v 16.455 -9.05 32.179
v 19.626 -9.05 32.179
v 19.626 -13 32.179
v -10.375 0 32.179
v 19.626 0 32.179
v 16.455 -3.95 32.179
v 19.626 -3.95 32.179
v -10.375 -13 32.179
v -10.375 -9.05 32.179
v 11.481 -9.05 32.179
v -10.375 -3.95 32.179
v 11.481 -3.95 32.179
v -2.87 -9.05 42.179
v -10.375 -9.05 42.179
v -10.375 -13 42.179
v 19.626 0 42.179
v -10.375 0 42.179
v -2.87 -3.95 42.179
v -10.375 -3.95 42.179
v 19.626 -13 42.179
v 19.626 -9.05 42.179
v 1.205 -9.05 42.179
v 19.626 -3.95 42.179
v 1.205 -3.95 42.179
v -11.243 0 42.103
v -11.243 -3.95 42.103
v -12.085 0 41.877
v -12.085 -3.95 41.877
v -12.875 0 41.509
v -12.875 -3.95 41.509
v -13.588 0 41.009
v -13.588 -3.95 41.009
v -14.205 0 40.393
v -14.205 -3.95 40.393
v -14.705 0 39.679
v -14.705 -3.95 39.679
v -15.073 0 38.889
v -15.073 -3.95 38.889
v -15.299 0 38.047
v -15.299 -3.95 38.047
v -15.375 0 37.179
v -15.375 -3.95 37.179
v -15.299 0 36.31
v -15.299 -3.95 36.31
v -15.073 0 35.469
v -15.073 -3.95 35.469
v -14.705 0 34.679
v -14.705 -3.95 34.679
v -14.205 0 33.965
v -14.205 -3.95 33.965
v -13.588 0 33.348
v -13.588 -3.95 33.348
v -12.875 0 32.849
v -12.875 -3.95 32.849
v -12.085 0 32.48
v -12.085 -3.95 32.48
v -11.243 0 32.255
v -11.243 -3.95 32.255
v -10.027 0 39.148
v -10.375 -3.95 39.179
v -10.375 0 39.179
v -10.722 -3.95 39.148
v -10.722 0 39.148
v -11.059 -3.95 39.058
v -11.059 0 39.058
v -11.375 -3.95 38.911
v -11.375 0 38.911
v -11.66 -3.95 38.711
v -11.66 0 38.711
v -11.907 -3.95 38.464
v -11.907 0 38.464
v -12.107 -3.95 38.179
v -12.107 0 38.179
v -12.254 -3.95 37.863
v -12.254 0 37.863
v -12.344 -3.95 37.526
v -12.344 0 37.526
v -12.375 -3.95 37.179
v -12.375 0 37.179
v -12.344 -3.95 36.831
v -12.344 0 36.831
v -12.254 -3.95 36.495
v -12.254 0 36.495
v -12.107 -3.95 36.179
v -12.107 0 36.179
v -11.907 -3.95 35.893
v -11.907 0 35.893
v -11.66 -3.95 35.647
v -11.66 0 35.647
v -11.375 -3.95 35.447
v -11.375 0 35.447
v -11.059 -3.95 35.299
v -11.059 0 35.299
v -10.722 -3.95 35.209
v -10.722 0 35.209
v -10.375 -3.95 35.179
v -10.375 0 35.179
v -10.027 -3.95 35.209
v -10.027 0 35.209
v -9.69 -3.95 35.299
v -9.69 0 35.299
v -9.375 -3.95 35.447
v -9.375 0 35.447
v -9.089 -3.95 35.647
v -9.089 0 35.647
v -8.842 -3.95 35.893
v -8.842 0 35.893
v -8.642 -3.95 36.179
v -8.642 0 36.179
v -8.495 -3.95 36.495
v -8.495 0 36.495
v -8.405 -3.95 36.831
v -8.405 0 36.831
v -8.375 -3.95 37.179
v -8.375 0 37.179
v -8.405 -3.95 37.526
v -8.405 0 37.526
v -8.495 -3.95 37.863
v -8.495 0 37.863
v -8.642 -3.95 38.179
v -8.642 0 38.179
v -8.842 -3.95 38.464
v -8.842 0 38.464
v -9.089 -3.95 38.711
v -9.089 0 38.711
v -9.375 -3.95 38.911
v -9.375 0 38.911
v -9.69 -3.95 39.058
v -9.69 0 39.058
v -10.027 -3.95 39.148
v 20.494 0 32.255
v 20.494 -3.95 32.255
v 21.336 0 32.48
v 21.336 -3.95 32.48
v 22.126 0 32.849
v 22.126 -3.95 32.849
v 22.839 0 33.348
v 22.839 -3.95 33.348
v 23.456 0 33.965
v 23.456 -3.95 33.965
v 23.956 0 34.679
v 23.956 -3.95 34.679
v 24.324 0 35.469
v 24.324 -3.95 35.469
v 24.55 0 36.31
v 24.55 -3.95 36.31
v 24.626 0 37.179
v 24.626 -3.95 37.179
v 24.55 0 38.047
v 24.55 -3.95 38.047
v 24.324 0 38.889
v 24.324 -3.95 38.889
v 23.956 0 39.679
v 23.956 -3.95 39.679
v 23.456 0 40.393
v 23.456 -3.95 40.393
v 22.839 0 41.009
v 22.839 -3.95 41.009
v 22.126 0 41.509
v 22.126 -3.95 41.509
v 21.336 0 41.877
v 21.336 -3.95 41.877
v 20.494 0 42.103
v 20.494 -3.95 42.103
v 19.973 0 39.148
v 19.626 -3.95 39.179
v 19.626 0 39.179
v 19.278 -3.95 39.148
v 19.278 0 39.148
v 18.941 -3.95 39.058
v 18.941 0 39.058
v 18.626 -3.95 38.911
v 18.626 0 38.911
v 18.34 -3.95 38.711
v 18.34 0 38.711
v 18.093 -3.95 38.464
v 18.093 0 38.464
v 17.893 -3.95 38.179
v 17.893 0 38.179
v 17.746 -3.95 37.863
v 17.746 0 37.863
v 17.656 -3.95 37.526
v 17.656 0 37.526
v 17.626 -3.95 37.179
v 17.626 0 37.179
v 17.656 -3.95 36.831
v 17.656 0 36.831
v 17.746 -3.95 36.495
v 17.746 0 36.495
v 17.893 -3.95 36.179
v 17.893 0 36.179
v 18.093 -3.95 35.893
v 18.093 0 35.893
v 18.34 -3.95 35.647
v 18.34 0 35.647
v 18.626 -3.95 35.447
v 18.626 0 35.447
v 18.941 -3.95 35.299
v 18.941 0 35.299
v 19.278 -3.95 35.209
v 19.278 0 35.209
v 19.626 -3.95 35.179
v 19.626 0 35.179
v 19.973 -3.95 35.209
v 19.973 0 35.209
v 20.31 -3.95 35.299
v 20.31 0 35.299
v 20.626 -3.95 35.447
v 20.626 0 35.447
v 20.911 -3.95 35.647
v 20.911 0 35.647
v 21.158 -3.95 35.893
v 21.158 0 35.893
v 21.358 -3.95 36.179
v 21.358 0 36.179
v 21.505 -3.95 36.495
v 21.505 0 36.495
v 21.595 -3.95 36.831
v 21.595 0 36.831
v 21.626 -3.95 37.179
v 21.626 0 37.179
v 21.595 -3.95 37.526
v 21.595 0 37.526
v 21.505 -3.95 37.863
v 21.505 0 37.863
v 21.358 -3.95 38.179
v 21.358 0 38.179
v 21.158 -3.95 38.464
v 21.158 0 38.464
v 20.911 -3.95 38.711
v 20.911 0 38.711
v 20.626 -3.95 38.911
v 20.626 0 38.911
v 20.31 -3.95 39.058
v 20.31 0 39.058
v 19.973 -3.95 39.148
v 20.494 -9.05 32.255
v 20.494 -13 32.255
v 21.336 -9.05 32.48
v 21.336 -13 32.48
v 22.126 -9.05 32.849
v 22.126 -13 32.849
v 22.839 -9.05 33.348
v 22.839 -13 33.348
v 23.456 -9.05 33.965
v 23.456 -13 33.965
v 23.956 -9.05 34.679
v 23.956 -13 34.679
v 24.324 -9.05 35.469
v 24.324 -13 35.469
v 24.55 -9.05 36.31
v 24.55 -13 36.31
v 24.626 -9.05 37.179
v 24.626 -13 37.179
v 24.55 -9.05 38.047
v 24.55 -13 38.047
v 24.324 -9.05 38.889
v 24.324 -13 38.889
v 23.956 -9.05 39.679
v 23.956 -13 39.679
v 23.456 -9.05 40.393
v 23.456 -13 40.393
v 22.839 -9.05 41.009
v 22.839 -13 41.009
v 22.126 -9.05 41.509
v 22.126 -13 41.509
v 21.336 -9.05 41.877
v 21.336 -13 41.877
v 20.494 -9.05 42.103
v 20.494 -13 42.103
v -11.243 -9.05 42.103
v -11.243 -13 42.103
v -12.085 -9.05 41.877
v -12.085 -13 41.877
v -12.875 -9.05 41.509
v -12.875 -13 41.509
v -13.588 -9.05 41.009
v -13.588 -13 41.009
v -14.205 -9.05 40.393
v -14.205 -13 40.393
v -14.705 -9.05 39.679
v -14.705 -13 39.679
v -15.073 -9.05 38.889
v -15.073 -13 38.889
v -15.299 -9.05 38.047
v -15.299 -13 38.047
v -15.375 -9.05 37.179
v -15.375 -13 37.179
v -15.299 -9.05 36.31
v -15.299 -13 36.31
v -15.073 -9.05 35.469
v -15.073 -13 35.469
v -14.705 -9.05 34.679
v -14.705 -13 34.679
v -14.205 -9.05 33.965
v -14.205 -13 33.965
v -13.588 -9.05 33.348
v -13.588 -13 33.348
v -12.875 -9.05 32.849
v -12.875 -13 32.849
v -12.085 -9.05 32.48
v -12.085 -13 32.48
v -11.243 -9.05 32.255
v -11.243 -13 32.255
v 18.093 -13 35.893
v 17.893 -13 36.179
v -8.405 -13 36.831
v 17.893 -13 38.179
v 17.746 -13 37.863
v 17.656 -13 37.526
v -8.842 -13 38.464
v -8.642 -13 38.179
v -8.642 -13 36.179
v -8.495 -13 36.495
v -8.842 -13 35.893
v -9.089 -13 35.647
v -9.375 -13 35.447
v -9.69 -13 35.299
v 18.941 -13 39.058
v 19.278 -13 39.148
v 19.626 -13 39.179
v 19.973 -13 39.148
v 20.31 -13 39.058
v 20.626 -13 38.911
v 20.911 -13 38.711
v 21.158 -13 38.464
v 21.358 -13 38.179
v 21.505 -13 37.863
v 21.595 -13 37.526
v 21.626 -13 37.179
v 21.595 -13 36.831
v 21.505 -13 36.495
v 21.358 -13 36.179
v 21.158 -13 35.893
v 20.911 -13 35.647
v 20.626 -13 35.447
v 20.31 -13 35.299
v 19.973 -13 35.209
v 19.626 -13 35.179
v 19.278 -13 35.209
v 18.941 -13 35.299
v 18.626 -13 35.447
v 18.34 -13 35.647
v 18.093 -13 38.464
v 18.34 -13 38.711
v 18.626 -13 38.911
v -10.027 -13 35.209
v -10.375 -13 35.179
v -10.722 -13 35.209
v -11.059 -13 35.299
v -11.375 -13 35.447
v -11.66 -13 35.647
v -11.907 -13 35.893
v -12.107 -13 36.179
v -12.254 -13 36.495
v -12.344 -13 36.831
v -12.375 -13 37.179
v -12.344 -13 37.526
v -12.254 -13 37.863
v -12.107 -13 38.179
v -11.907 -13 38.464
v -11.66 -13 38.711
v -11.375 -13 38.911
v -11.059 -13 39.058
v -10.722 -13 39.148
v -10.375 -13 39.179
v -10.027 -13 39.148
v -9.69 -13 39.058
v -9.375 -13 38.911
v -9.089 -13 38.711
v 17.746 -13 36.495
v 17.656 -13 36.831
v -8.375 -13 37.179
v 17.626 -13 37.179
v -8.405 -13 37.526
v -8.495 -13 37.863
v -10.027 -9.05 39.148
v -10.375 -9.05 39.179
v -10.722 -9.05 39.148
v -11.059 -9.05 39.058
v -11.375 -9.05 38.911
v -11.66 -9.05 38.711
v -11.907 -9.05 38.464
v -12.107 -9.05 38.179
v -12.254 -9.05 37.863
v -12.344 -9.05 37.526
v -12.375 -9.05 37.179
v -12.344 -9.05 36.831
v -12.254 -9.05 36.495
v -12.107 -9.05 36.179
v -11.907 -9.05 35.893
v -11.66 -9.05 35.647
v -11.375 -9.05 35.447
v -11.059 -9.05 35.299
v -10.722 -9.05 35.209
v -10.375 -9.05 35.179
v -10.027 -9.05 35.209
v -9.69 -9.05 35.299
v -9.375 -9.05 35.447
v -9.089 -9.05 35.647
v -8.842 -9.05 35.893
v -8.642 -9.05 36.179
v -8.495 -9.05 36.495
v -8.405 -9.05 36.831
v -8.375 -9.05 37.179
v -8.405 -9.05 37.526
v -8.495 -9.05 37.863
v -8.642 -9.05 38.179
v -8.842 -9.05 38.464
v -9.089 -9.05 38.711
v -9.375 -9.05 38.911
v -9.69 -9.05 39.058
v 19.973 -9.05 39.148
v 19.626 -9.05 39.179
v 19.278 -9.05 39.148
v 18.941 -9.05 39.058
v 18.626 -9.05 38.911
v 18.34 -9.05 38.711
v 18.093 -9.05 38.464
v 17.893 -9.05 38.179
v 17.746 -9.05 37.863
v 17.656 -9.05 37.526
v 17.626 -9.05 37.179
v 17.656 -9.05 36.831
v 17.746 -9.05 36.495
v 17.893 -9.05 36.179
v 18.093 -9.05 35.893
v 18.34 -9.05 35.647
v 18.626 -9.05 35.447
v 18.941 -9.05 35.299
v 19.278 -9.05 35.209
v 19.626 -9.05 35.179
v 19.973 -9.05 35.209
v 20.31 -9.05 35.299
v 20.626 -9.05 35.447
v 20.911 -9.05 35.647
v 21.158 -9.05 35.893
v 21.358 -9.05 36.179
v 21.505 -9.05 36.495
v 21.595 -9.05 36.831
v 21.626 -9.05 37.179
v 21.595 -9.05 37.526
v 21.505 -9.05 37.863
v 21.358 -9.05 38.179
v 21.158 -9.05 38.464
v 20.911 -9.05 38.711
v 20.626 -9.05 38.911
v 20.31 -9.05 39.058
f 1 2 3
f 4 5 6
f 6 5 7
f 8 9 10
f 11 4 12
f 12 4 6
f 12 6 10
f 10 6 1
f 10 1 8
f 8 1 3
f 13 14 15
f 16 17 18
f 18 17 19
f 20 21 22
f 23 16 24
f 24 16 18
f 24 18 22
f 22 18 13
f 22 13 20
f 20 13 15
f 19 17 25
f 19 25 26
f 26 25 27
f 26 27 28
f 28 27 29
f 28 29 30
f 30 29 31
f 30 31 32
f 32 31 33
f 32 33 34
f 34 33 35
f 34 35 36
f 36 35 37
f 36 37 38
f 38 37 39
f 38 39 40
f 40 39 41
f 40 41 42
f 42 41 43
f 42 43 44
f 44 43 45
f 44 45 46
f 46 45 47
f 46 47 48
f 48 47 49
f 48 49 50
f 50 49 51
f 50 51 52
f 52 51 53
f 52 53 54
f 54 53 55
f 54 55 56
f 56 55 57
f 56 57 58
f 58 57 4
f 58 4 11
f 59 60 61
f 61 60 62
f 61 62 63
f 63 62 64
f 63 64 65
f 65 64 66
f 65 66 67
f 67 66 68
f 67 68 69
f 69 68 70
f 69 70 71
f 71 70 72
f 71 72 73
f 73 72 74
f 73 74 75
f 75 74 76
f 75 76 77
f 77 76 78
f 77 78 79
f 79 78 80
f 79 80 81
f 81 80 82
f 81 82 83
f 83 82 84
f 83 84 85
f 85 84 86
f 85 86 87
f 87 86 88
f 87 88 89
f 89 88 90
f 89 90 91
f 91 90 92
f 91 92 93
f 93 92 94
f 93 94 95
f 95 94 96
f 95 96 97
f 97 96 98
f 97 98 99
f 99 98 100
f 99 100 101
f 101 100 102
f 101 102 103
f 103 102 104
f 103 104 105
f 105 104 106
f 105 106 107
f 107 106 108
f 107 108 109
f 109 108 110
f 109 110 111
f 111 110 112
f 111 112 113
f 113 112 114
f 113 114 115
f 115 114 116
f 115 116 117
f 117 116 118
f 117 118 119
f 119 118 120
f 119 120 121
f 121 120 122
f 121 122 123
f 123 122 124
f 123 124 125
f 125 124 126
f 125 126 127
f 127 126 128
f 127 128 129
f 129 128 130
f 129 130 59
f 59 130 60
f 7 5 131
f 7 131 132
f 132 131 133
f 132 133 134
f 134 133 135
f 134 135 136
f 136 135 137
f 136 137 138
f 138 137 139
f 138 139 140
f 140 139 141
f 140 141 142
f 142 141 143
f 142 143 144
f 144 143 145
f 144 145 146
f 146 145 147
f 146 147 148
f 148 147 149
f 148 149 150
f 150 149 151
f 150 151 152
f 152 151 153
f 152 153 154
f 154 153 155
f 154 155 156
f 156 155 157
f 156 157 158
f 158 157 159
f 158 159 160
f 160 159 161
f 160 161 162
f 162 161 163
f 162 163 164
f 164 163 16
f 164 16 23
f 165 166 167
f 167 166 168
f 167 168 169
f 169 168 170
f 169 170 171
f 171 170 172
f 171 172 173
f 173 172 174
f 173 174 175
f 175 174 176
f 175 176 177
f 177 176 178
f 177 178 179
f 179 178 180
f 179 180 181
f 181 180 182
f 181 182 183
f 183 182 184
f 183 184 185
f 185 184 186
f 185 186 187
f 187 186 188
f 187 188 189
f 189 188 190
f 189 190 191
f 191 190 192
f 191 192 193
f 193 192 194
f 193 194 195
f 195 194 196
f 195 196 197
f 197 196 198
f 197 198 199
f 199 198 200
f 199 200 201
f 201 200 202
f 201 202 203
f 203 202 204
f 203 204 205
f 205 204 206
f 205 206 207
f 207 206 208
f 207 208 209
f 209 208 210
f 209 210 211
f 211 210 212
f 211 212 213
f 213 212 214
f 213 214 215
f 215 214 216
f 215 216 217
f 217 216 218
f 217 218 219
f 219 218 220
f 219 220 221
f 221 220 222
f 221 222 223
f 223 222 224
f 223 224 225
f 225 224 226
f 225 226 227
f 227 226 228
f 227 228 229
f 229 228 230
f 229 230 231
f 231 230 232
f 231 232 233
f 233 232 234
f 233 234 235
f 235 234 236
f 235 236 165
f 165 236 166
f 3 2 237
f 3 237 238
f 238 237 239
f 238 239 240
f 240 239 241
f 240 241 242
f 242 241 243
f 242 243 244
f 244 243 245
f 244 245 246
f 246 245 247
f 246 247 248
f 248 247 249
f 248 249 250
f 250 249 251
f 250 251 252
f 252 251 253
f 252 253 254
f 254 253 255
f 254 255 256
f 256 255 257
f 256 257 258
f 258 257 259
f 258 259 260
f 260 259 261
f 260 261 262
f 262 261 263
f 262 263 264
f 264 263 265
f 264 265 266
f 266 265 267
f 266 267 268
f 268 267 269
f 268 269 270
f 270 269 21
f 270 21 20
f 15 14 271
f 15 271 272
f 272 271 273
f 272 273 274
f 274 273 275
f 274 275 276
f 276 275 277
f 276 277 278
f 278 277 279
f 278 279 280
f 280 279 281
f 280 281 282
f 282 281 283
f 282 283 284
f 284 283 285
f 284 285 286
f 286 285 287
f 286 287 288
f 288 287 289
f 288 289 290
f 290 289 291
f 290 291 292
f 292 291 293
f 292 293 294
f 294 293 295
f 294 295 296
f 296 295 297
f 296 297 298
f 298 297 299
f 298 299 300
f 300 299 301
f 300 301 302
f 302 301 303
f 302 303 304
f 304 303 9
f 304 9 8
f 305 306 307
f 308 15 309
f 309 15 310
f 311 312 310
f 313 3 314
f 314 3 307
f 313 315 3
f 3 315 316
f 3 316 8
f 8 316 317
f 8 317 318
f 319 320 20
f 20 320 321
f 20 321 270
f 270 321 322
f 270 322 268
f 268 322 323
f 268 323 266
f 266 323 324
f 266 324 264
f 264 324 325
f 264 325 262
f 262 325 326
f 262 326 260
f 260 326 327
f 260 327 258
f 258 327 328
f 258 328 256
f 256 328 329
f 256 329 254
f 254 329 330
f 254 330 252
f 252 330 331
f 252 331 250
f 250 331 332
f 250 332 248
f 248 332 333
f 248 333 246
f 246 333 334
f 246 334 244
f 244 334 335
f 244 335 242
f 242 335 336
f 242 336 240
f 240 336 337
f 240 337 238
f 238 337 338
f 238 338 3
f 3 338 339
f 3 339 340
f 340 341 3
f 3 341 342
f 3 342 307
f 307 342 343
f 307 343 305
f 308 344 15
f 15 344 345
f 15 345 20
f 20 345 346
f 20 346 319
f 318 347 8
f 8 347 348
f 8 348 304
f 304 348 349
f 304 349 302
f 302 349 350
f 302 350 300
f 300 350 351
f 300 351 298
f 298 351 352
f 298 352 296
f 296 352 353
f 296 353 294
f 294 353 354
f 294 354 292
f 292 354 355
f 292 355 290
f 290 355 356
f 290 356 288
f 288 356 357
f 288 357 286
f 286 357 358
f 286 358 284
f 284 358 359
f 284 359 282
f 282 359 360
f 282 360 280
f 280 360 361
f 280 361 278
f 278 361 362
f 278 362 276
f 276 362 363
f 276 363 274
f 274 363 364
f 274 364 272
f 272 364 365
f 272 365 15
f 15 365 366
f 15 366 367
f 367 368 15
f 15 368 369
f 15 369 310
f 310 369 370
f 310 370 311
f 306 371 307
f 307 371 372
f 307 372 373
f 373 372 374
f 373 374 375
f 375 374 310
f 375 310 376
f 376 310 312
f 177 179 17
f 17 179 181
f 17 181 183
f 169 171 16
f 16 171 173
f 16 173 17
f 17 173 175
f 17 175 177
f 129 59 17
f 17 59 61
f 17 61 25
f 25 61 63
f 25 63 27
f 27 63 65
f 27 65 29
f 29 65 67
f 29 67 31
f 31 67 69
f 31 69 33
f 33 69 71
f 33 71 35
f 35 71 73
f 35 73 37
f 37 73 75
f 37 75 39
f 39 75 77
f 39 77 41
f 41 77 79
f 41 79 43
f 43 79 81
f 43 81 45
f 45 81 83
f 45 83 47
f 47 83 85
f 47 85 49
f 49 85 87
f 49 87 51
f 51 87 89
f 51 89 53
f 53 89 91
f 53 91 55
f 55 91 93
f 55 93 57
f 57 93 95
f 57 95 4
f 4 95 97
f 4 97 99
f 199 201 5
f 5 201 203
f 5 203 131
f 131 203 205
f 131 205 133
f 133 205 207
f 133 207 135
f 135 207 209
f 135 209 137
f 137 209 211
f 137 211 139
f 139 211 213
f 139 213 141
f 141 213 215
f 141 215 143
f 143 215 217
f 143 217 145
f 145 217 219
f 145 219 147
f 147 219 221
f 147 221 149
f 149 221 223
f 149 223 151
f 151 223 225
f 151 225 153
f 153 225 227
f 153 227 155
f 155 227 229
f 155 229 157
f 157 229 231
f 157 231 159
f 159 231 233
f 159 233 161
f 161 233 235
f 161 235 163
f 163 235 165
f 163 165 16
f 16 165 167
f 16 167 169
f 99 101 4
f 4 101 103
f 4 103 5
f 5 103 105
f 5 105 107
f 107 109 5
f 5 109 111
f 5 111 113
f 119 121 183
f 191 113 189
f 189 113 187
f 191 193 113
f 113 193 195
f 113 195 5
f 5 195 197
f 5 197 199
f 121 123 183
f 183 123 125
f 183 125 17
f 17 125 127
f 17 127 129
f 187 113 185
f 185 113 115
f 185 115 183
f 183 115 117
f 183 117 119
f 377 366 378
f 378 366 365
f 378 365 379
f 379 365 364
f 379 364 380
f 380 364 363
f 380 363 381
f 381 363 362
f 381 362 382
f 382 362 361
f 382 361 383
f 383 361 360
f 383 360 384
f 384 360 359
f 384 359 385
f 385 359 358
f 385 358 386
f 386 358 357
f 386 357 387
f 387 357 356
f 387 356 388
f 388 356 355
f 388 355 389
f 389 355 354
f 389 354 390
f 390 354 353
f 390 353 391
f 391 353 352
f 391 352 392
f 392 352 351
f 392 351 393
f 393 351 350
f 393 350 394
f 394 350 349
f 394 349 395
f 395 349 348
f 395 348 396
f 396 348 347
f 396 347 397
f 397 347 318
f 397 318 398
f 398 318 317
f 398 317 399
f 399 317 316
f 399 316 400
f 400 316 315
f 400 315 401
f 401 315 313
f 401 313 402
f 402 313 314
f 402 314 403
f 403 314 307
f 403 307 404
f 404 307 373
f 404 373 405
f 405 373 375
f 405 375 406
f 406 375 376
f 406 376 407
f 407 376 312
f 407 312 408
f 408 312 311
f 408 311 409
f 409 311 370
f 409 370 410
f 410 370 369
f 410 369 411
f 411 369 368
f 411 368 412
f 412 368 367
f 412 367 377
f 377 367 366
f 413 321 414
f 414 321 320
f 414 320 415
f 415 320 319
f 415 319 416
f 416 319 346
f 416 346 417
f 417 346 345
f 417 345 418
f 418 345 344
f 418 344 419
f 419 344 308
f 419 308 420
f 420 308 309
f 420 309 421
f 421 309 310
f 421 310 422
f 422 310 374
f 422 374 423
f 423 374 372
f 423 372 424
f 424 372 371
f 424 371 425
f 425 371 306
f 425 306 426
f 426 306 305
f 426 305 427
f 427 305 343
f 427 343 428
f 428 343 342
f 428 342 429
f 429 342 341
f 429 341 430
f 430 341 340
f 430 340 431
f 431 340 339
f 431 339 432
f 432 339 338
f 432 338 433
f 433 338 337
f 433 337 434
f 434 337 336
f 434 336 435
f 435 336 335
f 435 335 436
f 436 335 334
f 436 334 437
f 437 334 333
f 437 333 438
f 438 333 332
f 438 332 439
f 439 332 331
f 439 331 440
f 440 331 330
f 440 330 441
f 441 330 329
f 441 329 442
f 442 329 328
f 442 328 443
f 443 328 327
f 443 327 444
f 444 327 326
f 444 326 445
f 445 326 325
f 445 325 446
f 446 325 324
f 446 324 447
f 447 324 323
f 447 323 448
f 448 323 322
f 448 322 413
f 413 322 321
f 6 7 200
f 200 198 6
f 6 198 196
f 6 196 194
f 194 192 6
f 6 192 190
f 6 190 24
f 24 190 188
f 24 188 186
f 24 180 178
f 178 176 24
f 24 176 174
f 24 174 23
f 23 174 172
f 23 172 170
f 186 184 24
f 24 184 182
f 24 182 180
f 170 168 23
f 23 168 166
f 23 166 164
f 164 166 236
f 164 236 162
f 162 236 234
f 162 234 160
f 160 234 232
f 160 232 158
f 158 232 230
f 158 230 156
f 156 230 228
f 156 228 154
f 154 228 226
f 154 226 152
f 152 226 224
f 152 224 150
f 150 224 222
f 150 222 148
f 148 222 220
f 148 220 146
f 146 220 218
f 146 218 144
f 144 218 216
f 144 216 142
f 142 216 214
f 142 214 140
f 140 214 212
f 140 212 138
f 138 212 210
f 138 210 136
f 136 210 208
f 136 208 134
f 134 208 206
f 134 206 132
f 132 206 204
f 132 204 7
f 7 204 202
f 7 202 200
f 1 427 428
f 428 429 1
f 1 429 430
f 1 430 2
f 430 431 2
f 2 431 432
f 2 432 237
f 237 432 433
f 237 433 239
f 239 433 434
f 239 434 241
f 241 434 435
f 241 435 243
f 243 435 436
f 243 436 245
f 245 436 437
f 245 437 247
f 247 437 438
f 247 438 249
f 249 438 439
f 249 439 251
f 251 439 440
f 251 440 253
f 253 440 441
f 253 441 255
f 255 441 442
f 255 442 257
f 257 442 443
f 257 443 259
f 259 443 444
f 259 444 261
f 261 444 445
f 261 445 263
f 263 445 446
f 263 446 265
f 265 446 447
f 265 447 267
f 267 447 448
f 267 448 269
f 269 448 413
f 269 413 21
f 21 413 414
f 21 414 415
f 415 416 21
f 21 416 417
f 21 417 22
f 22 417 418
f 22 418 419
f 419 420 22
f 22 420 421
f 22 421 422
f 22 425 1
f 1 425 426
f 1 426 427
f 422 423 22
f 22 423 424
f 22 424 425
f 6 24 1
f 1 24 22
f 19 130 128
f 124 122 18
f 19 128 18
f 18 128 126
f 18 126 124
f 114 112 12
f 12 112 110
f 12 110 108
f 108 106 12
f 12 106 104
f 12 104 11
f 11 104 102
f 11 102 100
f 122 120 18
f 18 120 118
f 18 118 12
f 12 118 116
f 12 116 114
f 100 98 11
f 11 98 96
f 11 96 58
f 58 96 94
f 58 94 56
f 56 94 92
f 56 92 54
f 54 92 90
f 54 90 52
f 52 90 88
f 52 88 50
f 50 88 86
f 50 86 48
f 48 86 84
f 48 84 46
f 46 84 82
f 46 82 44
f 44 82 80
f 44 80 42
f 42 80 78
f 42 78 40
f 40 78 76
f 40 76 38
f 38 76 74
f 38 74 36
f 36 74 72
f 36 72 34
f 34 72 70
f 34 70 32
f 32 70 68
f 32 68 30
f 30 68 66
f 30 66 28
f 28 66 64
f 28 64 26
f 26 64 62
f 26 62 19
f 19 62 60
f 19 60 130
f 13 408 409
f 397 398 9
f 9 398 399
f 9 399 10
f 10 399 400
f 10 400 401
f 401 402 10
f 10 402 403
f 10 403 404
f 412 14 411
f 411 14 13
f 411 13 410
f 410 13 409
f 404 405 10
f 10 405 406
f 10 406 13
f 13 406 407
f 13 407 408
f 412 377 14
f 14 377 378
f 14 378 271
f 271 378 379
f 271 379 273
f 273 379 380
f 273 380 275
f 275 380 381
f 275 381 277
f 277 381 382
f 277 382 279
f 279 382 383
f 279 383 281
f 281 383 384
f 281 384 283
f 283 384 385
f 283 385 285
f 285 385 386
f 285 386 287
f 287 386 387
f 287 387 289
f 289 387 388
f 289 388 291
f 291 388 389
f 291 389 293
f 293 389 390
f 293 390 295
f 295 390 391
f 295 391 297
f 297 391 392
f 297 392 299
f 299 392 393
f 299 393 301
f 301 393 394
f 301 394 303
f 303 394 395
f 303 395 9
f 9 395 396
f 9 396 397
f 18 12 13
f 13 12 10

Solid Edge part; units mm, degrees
sketch "Sketch1" plane through (0, 0, 0) normal (0, -1, 0) x (1, 0, 0)
  line L0 (-10.3745, 32.1787) -> (19.6255, 32.1787)
  arc A0 (19.6255, 32.1787) -> (24.6255, 37.1787) centre (19.6255, 37.1787) ccw
  arc A1 (19.6255, 42.1787) -> (24.6255, 37.1787) centre (19.6255, 37.1787) cw
  line L1 (19.6255, 42.1787) -> (-10.3745, 42.1787)
  arc A2 (-10.3745, 42.1787) -> (-15.3745, 37.1787) centre (-10.3745, 37.1787) ccw
  arc A3 (-15.3745, 37.1787) -> (-10.3745, 32.1787) centre (-10.3745, 37.1787) ccw
extrude "Protrusion1" add sketch "Sketch1" along normal blind 13
hole "Bohrung_1" at (-10.3745, 0, 37.1787) direction (0, -1, 0) diameter 4 end through all
hole "Hole1" at (19.6255, 0, 37.1787) direction (0, -1, 0) diameter 4 end through all
sketch "Sketch2" plane through (4.6255, -6.5, 37.1787) normal (0, 1, 0) x (1, 0, 0)
  line L0 (-3.4203, -5) -> (11.829, 5)
  line L1 (11.829, 5) -> (15, 5)
  arc A0 (15, 5) -> (15, -5) centre (15, 0) cw
  line L2 (15, -5) -> (-3.4203, -5)
  line L3 (-15, 5) -> (6.8551, 5)
  line L4 (-7.4956, -5) -> (6.8551, 5)
  line L5 (-7.4956, -5) -> (-15, -5)
  arc A1 (-15, -5) -> (-15, 5) centre (-15, 0) cw
extrude "Extrusionsausschnitt_2" cut sketch "Sketch2" along normal mid plane 5.1
